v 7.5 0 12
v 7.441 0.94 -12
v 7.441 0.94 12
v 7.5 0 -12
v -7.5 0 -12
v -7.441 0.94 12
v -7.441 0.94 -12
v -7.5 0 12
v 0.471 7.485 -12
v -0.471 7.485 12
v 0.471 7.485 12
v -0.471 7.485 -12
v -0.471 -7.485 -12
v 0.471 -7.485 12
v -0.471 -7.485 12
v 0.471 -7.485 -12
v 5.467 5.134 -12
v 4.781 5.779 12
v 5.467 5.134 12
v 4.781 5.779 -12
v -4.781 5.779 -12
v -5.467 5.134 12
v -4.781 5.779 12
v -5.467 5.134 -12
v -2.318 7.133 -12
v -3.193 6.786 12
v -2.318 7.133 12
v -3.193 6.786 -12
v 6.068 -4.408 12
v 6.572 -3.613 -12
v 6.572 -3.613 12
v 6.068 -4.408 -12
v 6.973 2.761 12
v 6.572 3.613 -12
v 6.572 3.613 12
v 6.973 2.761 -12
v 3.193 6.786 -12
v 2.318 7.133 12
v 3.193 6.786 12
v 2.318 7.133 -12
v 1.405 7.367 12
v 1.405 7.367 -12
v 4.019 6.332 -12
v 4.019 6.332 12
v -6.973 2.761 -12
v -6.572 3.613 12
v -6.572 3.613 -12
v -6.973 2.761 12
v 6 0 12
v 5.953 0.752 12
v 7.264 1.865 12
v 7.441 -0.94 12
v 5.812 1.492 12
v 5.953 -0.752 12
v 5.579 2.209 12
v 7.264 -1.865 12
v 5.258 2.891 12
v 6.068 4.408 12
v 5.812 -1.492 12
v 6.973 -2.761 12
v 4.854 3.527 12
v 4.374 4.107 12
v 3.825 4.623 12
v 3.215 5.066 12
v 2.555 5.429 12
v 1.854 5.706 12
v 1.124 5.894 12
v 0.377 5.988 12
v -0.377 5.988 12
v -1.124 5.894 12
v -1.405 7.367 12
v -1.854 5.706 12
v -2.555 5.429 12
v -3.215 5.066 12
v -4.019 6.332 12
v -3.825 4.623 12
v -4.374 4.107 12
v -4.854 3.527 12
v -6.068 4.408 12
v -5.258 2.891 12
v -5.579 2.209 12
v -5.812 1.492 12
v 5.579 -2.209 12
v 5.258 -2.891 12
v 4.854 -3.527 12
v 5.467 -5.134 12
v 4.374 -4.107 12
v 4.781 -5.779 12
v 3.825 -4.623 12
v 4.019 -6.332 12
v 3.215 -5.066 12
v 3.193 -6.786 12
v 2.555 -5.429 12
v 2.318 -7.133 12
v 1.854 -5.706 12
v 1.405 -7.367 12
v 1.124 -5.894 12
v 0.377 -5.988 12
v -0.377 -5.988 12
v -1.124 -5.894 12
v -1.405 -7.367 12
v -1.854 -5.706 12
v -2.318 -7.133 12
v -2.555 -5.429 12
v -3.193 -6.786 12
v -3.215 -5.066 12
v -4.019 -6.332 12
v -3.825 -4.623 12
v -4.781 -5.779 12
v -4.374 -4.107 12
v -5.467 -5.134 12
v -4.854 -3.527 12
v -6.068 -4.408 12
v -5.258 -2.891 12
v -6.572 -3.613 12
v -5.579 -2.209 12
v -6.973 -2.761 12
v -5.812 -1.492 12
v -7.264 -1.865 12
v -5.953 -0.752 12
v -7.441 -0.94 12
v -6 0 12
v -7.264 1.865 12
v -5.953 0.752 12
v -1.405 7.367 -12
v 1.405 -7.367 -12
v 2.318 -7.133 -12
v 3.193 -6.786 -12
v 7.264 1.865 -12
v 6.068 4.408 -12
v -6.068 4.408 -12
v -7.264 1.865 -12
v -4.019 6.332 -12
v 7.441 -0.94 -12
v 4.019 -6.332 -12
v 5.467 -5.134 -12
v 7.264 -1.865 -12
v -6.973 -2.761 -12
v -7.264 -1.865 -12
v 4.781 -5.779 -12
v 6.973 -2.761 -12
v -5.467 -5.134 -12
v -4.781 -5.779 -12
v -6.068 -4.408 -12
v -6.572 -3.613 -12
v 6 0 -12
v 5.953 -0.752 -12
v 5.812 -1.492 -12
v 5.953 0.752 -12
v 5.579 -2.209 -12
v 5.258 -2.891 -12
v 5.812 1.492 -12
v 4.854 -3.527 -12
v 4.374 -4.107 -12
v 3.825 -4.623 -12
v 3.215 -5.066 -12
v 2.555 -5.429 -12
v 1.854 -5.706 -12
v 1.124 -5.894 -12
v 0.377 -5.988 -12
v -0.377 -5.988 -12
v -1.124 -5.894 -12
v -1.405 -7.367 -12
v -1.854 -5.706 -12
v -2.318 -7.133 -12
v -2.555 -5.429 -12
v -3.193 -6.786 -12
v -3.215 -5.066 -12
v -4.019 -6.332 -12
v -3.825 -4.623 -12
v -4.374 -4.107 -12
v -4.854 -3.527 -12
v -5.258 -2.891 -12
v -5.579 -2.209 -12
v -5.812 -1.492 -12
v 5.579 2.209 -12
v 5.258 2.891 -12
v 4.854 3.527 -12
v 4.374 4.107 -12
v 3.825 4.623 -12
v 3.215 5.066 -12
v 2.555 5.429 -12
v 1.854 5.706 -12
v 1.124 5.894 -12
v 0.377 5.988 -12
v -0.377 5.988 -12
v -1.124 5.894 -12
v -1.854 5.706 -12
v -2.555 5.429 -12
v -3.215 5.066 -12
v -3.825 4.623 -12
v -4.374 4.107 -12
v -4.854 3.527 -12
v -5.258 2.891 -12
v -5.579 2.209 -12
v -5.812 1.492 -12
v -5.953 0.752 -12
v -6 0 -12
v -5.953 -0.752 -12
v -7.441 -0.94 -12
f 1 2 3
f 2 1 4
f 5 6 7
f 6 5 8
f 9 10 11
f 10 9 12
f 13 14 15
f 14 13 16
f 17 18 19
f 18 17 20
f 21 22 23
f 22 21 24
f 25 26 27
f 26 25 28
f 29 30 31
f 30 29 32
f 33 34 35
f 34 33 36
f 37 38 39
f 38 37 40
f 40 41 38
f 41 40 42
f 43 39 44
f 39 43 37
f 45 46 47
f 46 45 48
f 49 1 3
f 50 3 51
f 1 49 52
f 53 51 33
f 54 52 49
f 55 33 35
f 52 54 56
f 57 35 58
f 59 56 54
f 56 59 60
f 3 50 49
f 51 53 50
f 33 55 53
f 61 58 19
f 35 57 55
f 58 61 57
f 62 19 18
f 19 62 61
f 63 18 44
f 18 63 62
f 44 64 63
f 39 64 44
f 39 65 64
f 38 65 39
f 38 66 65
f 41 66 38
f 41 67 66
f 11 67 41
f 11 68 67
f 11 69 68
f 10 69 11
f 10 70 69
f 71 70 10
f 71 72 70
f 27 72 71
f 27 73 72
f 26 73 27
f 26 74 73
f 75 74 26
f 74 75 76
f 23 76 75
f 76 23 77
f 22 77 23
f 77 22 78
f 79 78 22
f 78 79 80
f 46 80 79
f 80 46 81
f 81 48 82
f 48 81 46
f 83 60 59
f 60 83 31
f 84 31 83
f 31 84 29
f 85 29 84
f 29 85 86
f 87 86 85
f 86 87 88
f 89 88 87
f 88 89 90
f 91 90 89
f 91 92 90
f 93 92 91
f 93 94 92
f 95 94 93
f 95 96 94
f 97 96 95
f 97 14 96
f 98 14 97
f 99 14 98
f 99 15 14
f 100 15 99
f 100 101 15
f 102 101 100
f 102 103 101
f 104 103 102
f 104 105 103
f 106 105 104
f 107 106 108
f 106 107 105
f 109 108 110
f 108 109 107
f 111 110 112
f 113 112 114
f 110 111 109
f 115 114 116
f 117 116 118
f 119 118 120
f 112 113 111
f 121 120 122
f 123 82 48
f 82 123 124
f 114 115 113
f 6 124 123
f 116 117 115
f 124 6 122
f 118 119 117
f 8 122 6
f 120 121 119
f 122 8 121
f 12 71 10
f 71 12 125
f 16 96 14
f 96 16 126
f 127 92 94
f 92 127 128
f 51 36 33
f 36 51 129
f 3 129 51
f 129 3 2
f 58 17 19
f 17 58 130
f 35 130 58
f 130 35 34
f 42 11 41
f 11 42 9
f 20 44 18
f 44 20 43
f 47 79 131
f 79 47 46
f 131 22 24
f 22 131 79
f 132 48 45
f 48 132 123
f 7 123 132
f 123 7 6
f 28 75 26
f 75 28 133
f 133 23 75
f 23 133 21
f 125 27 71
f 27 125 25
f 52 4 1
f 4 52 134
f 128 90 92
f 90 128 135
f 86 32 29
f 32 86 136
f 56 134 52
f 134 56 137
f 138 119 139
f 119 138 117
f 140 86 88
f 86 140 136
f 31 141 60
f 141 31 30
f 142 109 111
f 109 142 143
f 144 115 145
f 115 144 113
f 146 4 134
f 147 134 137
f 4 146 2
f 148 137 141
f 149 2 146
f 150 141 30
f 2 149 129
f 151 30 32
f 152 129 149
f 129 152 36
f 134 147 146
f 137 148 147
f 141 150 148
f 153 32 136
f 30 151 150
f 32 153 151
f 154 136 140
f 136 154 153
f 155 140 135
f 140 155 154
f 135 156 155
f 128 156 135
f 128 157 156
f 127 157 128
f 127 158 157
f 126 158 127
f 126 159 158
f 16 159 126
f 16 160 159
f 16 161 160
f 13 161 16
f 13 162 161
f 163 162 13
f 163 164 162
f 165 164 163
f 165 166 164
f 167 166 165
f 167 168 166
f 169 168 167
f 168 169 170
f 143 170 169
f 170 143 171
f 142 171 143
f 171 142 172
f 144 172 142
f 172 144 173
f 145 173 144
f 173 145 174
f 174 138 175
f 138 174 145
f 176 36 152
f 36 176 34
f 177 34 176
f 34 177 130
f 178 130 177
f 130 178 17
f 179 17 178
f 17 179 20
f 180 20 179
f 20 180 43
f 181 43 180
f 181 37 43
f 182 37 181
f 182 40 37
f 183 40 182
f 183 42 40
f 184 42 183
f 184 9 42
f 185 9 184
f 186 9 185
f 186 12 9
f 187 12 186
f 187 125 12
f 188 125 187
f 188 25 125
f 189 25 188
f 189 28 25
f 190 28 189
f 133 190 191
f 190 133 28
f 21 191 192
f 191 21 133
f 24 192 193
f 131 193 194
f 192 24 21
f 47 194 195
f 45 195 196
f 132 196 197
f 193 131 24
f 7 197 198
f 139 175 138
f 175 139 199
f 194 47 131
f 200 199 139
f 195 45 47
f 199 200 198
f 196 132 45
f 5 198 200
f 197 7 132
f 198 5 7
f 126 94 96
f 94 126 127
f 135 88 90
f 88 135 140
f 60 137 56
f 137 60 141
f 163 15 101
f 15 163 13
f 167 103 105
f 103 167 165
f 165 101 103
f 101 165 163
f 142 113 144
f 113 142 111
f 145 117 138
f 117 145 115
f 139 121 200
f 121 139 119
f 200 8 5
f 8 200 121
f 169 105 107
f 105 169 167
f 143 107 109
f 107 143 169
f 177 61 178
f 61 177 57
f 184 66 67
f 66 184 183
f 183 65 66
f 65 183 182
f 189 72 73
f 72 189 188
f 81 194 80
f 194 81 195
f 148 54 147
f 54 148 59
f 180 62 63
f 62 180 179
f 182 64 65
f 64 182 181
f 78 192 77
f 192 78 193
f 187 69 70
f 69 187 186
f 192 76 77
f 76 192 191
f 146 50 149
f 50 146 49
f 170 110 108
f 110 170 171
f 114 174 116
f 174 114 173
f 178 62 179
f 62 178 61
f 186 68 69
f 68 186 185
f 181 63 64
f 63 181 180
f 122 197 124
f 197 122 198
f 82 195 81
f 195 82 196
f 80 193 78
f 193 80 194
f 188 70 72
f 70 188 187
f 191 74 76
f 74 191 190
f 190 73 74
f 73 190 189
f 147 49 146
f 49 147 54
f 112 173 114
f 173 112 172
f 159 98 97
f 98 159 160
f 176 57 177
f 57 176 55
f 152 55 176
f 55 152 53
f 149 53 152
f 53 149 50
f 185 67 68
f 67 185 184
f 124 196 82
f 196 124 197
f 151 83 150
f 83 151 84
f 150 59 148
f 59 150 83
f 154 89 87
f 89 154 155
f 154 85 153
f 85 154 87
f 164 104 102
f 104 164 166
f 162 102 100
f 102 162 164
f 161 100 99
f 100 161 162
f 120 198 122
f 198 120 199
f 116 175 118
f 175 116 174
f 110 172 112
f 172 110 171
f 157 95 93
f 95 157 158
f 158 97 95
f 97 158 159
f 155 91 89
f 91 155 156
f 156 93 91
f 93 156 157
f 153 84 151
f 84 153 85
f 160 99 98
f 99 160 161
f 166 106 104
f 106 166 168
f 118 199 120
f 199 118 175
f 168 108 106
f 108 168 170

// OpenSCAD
$fn = 50;


difference() {
	union() {
		translate(v = [0, 0, -12.0000000000]) {
			cylinder(h = 24, r = 7.5000000000);
		}
	}
	union() {
		translate(v = [0, 0, -100.0000000000]) {
			cylinder(h = 200, r = 6);
		}
	}
}
